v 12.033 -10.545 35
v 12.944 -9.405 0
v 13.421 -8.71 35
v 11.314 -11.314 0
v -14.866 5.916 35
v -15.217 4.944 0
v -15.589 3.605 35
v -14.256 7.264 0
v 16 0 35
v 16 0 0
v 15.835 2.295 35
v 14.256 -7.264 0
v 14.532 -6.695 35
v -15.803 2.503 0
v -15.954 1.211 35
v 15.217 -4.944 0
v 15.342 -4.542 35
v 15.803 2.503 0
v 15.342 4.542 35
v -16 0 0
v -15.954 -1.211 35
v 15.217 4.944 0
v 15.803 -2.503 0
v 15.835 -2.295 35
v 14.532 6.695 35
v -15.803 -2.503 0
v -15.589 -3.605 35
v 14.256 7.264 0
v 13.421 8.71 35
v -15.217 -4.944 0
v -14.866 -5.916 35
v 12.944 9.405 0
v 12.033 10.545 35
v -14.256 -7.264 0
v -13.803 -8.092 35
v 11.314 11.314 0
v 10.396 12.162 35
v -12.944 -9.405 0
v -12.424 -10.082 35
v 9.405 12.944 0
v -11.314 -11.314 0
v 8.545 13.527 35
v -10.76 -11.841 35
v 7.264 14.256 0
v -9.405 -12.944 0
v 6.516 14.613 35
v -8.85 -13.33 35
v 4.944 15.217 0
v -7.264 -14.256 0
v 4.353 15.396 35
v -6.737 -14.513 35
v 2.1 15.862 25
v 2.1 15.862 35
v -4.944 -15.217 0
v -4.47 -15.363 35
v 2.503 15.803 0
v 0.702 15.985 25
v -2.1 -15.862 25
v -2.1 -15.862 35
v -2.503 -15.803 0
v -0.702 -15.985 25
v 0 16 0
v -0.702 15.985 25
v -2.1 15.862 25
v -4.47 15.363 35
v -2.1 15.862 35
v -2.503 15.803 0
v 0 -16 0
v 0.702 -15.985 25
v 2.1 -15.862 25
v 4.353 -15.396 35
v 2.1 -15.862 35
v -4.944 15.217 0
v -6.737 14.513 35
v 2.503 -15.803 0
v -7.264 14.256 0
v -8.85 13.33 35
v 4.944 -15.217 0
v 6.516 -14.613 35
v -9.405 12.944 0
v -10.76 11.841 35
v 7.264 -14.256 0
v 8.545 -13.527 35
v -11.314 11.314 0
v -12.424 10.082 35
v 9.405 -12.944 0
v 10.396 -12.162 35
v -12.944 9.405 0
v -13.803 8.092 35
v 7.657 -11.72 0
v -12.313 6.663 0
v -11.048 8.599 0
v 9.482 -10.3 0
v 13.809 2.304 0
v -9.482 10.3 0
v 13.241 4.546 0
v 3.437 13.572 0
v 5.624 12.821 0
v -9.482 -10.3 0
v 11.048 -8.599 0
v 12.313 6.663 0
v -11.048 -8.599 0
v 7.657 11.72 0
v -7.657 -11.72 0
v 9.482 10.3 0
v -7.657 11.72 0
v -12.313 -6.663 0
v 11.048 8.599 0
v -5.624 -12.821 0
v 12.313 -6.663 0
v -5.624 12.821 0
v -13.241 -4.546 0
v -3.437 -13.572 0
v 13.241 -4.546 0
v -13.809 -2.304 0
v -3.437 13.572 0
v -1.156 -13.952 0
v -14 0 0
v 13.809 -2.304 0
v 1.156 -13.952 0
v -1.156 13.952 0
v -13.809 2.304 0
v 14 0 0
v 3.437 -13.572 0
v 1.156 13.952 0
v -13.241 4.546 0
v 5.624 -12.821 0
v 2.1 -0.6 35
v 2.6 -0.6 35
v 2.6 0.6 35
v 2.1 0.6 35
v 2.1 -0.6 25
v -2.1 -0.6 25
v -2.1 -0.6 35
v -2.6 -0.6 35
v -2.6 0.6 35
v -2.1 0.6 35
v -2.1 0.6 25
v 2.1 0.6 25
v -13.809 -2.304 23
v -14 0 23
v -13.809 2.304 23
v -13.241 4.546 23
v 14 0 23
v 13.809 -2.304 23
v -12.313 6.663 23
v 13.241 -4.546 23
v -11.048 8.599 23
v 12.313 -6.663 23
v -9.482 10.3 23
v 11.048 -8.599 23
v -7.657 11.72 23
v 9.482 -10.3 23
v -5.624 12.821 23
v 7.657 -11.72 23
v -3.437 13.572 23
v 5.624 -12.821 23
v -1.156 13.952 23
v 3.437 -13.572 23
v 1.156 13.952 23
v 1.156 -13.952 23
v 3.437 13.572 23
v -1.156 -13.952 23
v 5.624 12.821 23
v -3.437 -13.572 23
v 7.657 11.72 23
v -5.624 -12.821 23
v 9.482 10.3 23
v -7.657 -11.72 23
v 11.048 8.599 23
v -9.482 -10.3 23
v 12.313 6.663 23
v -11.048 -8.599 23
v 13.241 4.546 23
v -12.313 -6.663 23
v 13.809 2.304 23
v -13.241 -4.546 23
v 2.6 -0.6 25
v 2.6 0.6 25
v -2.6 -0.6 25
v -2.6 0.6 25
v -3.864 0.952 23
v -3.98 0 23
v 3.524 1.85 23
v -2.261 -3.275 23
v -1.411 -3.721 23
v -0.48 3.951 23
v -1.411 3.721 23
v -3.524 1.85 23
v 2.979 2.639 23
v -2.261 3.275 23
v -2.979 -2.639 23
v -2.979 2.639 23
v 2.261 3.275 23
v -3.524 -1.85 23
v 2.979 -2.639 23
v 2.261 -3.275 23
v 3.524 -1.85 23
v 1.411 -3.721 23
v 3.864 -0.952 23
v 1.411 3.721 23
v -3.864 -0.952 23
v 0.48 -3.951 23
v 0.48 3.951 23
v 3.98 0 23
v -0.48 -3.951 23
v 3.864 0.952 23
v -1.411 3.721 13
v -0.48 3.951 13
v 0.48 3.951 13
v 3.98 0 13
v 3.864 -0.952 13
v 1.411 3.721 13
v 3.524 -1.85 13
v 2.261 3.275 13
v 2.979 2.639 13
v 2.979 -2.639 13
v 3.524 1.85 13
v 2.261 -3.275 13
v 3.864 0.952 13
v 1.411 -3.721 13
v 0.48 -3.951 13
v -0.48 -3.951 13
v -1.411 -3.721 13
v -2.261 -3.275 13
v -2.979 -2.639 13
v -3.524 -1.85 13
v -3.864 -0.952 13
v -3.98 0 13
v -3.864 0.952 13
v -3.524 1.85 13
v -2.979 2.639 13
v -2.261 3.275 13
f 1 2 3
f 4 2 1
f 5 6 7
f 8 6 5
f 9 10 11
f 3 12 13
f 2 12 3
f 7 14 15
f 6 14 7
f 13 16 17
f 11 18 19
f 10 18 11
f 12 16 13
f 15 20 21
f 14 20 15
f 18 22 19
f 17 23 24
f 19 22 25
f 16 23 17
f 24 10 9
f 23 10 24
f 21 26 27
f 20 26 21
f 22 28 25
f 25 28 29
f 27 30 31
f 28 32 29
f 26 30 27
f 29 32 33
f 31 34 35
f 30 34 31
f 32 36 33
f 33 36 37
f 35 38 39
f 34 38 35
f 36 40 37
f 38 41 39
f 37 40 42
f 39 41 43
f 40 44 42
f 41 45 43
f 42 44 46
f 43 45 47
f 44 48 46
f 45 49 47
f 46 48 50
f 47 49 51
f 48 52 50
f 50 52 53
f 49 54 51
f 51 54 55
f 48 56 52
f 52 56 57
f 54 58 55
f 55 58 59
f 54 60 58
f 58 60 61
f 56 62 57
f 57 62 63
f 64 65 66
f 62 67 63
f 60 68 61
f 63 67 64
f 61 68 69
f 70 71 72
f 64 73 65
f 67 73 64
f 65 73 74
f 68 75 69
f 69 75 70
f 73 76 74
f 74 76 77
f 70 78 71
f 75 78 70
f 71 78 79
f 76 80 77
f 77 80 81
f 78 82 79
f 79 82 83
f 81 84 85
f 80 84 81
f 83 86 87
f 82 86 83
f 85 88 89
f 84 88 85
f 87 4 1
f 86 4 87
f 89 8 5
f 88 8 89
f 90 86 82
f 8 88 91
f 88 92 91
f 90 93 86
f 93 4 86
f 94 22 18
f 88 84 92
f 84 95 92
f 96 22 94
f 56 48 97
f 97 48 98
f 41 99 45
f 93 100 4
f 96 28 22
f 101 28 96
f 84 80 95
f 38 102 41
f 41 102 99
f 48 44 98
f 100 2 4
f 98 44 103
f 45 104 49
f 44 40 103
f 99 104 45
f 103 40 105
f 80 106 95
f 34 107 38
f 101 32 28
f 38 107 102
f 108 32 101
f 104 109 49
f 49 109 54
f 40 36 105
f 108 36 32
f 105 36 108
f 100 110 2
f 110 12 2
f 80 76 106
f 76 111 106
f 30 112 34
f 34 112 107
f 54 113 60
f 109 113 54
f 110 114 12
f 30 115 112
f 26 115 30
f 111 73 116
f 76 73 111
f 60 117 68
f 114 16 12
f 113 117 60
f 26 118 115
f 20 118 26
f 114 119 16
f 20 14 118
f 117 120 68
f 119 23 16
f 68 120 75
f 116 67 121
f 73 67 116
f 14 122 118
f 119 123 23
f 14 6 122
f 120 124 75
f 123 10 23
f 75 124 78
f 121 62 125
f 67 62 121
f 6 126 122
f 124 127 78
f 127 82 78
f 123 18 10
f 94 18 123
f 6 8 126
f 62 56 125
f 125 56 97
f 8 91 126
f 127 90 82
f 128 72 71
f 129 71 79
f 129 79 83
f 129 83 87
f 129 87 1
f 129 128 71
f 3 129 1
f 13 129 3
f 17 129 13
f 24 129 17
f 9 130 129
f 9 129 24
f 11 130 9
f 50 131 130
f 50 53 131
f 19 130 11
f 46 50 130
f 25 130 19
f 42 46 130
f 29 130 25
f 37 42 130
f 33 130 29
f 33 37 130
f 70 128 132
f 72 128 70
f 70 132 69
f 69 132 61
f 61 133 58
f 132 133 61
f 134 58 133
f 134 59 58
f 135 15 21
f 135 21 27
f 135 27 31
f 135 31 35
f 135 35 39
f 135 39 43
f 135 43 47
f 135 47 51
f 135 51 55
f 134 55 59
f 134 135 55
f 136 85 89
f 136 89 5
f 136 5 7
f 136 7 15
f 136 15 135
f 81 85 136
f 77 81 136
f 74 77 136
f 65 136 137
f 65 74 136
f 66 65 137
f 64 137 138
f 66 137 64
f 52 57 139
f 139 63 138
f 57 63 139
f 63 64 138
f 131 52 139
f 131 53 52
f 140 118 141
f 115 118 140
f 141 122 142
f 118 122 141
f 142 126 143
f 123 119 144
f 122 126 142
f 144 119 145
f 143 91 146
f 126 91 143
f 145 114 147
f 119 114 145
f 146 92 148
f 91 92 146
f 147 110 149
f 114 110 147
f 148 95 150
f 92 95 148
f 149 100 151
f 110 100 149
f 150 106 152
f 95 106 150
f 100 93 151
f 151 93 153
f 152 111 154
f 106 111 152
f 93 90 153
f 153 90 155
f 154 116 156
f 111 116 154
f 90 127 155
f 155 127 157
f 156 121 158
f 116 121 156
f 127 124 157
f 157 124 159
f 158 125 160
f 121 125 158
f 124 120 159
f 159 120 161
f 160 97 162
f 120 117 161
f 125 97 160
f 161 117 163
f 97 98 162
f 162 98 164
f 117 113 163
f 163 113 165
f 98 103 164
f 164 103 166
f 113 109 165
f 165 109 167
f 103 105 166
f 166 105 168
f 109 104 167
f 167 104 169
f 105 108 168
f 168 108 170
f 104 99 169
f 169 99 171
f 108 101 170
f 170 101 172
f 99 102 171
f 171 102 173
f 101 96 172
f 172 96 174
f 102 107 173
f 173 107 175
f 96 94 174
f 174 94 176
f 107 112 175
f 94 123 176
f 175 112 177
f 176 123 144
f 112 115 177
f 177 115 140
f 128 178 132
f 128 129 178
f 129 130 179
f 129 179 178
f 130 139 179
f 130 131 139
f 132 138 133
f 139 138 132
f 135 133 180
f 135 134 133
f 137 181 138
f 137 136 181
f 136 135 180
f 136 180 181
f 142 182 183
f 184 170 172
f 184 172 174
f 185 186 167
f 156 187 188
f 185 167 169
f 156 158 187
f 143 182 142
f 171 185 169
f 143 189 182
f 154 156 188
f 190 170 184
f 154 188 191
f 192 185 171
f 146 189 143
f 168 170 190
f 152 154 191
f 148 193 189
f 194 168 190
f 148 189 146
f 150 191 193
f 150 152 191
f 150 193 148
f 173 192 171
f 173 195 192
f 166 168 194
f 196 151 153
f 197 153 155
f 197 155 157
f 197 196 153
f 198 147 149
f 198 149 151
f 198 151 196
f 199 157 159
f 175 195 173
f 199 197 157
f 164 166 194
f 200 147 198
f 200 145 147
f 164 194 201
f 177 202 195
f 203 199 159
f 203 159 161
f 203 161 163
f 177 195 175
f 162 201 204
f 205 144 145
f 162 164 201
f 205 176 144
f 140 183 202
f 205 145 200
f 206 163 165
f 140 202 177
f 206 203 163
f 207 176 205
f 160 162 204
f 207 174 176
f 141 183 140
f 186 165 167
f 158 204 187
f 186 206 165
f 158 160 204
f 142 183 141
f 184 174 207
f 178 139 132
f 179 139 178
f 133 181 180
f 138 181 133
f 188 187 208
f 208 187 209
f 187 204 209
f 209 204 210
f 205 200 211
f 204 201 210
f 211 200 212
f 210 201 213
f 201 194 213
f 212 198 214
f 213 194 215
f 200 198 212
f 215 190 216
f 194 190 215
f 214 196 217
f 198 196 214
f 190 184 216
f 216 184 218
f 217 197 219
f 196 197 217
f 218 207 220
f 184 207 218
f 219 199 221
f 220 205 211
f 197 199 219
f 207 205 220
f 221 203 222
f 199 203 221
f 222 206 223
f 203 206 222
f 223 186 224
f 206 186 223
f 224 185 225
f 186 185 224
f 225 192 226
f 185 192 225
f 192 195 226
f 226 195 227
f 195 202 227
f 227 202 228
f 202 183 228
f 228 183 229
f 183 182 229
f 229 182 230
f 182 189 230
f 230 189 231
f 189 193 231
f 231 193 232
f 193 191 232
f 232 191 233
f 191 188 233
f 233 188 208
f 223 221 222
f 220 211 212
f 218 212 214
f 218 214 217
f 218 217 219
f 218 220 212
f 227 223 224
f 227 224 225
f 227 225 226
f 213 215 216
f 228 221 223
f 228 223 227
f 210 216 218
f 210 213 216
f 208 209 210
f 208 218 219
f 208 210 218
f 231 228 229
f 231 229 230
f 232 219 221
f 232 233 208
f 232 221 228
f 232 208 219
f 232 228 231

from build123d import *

# Parameters (mm, degrees)
SKETCH_R        = 16
PAD_DEPTH       = 35
SKETCH001_R     = 14
POCKET_DEPTH    = 23
SKETCH002_R     = 3.98
PAD001_DEPTH    = 10
SKETCH003_W     = 5.2
SKETCH003_H     = 1.2
POCKET001_DEPTH = 10
SKETCH004_W     = 4.2
SKETCH004_H     = 32.681076
POCKET002_DEPTH = 10


with BuildPart() as part:
    # Sketch → Pad (new body)
    with BuildSketch(Plane.XY):
        Circle(SKETCH_R)
    extrude(amount=PAD_DEPTH)

    # Sketch001 (on Face2 of Pad) → Pocket (cut)
    with BuildSketch(Plane(origin=(0, 0, 0), x_dir=(1, 0, 0), z_dir=(0, 0, -1))):
        Circle(SKETCH001_R)
    extrude(amount=-POCKET_DEPTH, mode=Mode.SUBTRACT)

    # Sketch002 (on Face5 of Pocket) → Pad001 (join)
    with BuildSketch(Plane(origin=(0, 0, 23), x_dir=(1, 0, 0), z_dir=(0, 0, -1))):
        Circle(SKETCH002_R)
    extrude(amount=PAD001_DEPTH)

    # Sketch003 (on Face3 of Pad001) → Pocket001 (cut)
    with BuildSketch(Plane.XY.offset(35)):
        Rectangle(SKETCH003_W, SKETCH003_H)
    extrude(amount=-POCKET001_DEPTH, mode=Mode.SUBTRACT)

    # Sketch004 (on Face3 of Pocket001) → Pocket002 (cut)
    with BuildSketch(Plane.XY.offset(35)):
        with Locations((0, -0.015375)):
            Rectangle(SKETCH004_W, SKETCH004_H)
    extrude(amount=-POCKET002_DEPTH, mode=Mode.SUBTRACT)


solid = part.part
